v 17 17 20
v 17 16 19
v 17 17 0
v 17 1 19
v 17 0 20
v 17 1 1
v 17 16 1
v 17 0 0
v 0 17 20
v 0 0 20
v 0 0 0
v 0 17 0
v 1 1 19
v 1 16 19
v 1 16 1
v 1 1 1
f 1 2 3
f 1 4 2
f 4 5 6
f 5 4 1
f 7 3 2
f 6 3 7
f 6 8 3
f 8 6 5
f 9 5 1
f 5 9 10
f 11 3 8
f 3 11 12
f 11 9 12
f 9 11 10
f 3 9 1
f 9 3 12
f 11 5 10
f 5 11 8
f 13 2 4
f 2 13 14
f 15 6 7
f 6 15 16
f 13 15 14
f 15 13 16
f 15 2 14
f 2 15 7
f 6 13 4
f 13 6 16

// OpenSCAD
difference(){
cube([17, 17, 20]);
translate([1, 1, 1])
cube([20, 15, 18]);
}
